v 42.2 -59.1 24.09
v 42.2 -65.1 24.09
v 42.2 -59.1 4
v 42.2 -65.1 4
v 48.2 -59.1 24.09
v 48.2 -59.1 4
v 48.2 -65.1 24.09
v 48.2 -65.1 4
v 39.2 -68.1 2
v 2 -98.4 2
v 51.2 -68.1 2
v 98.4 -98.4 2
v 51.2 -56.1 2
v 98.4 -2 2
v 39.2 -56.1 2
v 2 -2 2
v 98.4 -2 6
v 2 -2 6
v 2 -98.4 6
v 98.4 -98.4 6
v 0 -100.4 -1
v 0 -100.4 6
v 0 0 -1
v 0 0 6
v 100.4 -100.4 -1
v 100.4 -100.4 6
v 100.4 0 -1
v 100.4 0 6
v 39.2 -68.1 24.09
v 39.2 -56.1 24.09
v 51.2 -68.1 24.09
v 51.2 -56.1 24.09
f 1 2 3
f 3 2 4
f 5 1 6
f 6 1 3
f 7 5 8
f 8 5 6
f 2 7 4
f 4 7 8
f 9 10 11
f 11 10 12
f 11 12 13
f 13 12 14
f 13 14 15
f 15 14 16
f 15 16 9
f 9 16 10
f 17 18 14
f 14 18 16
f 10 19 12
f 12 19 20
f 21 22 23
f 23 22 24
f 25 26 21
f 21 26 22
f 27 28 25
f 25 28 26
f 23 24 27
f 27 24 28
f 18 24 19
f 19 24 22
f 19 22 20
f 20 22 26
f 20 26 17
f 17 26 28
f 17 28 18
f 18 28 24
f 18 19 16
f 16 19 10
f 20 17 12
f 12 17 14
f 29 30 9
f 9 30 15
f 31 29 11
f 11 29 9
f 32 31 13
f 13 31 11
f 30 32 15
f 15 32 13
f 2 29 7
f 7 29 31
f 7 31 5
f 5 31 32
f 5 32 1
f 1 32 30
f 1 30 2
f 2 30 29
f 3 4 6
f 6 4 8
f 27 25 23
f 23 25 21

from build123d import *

# Parameters (mm, degrees)
SKETCH_1_W          = 100.4
SKETCH_1_H          = 100.4
EXTRUDE_2_DEPTH     = 2
SKETCH_2_W          = 100.4
SKETCH_2_H          = 2
EXTRUDE_3_DEPTH     = 4
SKETCH_3_W          = 2
SKETCH_3_H          = 96.4
EXTRUDE_4_DEPTH     = 4
SKETCH_4_W          = 12
SKETCH_4_H          = 12
EXTRUDE_5_DEPTH     = 22.09
SKETCH_7_W          = 6
SKETCH_7_H          = 6
CUT_EXTRUDE_1_DEPTH = 22.09
SKETCH_8_W          = 6
SKETCH_8_H          = 6
EXTRUDE_6_DEPTH     = 2
SKETCH_10_W         = 100.4
SKETCH_10_H         = 100.4
EXTRUDE_7_DEPTH     = 1


with BuildPart() as part:
    # 草圖1 → 填料-伸長2 (new body)
    with BuildSketch(Plane.XY):
        with Locations((50.2, -50.2)):
            Rectangle(SKETCH_1_W, SKETCH_1_H)
    extrude(amount=EXTRUDE_2_DEPTH)

    # 草圖2 → 填料-伸長3 (add)
    with BuildSketch(Plane.XY.offset(2)):
        Polygon((100.4, -2), (100.4, 0), (0, 0), (0, -2), (1, -2), (55.6, -2), align=None)
        with Locations((50.2, -99.4)):
            Rectangle(SKETCH_2_W, SKETCH_2_H)
    extrude(amount=EXTRUDE_3_DEPTH)

    # 草圖3 → 填料-伸長4 (add)
    with BuildSketch(Plane.XY.offset(2)):
        with Locations((1, -50.2)):
            Rectangle(SKETCH_3_W, SKETCH_3_H)
        with Locations((99.4, -50.2)):
            Rectangle(SKETCH_3_W, SKETCH_3_H)
    extrude(amount=EXTRUDE_4_DEPTH)

    # 草圖4 → 填料-伸長5 (add)
    with BuildSketch(Plane.XY.offset(2)):
        with Locations((45.2, -62.1)):
            Rectangle(SKETCH_4_W, SKETCH_4_H)
    extrude(amount=EXTRUDE_5_DEPTH)

    # 草圖7 → 除料-伸長1 (cut)
    with BuildSketch(Plane.XY.offset(24.09)):
        with Locations((45.2, -62.1)):
            Rectangle(SKETCH_7_W, SKETCH_7_H)
    extrude(amount=-CUT_EXTRUDE_1_DEPTH, mode=Mode.SUBTRACT)

    # 草圖8 → 填料-伸長6 (add)
    with BuildSketch(Plane.XY.offset(2)):
        with Locations((45.2, -62.1)):
            Rectangle(SKETCH_8_W, SKETCH_8_H)
    extrude(amount=EXTRUDE_6_DEPTH)

    # 草圖10 → 填料-伸長7 (add)
    with BuildSketch(Plane(origin=(0, 0, 0), x_dir=(-1, 0, 0), z_dir=(0, 0, -1))):
        with Locations((-50.2, -50.2)):
            Rectangle(SKETCH_10_W, SKETCH_10_H)
    extrude(amount=EXTRUDE_7_DEPTH)


solid = part.part
